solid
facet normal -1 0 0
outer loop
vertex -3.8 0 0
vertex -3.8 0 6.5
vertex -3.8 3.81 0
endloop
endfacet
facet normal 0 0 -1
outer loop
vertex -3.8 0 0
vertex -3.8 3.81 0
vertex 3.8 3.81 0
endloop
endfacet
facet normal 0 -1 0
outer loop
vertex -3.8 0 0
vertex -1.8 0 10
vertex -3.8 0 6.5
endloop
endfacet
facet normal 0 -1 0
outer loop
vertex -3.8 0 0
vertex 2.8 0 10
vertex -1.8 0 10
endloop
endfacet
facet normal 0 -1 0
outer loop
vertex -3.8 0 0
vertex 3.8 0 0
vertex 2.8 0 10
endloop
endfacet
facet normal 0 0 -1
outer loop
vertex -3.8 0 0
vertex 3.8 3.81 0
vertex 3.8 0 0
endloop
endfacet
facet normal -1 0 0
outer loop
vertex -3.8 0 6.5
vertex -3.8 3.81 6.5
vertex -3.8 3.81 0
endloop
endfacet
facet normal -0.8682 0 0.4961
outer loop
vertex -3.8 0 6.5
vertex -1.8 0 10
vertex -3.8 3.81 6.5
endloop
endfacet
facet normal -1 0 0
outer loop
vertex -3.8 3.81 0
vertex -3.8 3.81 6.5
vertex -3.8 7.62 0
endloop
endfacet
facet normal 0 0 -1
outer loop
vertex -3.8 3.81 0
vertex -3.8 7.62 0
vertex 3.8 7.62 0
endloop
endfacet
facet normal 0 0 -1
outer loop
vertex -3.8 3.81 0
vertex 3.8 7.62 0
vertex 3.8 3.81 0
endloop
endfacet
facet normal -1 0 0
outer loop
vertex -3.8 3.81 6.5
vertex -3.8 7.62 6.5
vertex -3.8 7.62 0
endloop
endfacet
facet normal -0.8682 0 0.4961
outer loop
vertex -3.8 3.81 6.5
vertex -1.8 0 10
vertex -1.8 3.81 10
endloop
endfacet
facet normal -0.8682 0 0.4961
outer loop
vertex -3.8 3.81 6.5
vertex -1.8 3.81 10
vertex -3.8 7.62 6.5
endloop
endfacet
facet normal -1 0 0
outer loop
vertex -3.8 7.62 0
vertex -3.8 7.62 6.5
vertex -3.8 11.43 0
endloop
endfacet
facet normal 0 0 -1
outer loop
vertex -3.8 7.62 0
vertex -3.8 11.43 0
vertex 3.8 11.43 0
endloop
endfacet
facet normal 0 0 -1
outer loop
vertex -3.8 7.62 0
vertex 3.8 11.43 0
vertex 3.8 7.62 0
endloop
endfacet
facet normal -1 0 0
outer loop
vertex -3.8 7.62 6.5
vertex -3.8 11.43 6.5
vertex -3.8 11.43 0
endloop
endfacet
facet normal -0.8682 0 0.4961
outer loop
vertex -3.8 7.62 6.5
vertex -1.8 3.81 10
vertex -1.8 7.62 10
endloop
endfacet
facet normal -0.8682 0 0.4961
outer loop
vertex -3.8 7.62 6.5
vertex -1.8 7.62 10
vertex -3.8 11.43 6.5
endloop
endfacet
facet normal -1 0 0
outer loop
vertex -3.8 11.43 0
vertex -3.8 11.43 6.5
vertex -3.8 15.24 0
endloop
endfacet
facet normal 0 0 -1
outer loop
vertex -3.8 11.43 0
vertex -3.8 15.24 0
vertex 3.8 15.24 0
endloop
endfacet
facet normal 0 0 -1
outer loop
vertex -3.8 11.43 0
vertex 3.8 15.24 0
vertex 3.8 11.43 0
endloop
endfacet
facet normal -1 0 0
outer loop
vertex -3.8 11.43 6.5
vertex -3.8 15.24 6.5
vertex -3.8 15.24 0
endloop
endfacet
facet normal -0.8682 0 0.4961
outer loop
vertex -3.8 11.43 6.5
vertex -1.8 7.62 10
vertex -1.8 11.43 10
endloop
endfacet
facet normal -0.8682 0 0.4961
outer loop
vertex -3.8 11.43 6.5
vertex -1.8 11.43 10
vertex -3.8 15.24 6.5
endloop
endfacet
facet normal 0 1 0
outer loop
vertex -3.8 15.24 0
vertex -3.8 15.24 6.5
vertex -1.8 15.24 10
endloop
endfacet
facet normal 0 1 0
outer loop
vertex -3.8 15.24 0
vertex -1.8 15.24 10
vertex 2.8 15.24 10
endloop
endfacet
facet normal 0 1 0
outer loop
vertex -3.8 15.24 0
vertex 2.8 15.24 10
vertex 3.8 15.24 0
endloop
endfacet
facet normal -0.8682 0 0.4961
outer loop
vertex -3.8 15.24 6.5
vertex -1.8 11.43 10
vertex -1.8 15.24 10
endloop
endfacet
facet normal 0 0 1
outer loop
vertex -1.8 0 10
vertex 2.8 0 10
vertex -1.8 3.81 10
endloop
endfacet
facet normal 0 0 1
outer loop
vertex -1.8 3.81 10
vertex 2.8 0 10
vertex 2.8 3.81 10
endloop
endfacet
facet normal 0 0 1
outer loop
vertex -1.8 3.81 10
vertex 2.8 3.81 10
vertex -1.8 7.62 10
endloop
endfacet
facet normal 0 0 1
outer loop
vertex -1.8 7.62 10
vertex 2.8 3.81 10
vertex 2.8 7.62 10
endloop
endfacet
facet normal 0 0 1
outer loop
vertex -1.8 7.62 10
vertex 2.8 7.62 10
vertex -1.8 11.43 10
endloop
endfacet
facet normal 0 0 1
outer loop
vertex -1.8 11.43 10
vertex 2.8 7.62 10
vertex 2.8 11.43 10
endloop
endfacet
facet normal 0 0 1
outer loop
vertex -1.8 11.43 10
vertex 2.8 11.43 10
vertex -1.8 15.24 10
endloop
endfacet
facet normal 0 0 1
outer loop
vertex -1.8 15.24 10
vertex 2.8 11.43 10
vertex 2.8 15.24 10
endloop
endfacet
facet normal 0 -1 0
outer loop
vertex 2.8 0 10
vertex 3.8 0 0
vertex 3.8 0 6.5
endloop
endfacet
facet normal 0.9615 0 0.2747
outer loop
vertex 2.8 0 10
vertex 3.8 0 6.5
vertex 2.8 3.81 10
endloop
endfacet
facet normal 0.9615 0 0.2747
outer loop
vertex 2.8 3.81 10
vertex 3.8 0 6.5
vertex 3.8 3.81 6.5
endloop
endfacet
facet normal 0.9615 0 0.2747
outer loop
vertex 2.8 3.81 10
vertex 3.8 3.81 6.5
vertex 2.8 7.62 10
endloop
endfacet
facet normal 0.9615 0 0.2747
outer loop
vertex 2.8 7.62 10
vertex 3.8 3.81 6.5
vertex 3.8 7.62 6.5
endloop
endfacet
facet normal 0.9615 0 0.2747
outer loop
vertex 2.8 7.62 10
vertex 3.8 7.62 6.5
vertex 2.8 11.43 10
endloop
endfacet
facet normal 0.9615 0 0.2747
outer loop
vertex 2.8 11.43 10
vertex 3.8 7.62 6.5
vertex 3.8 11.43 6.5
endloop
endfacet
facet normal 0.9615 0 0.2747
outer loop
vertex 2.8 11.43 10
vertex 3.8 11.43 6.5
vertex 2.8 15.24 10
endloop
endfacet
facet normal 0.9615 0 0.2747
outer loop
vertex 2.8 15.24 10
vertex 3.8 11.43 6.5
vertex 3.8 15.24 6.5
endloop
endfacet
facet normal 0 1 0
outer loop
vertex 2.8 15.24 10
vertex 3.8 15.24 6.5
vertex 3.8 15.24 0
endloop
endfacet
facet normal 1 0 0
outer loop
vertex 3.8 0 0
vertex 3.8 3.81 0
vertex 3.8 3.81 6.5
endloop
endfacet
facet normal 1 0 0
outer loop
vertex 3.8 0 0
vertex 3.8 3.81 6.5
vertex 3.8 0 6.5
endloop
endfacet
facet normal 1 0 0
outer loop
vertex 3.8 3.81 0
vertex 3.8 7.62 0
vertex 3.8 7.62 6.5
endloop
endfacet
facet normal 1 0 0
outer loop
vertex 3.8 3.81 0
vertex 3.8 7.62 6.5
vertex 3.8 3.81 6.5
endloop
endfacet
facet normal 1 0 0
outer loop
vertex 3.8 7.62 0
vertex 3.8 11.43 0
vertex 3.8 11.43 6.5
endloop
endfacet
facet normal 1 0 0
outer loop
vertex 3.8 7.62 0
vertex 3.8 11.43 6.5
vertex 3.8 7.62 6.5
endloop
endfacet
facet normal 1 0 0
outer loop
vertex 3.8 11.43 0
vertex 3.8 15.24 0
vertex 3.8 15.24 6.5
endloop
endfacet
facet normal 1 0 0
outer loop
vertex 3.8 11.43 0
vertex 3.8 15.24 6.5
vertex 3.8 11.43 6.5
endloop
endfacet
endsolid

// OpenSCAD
// Start: lazy_union
default_5_default_5();
// End: lazy_union

// Modules.

// 'PartMaterial undef-default - default 5.0'
module default_5_default_5() {
  // 'None : _combine_solids_and_holes'
  union() {
    // 'default : _combine_solids_and_holes'
    union() {
      // 'terminal'
      multmatrix(m=[[1.0, 0.0, 0.0, 0.0], [0.0, 0.0, -1.0, 15.24], [0.0, 1.0, 0.0, 0.0], [0.0, 0.0, 0.0, 1.0]]) {
        // 'terminal : _combine_solids_and_holes'
        union() {
          // 'terminal'
          linear_extrude(height=15.24, twist=0.0, slices=4, scale=[1.0, 1.0]) {
            polygon(points=[[0.0, 0.0], [-3.8, 0.0], [-3.8, 6.5], [-1.7999999999999998, 10.0], [2.8, 10.0], [3.8, 6.5], [3.8, 0.0]]);
          }
        }
      }
    }
  }
} // end module default_5_default_5
